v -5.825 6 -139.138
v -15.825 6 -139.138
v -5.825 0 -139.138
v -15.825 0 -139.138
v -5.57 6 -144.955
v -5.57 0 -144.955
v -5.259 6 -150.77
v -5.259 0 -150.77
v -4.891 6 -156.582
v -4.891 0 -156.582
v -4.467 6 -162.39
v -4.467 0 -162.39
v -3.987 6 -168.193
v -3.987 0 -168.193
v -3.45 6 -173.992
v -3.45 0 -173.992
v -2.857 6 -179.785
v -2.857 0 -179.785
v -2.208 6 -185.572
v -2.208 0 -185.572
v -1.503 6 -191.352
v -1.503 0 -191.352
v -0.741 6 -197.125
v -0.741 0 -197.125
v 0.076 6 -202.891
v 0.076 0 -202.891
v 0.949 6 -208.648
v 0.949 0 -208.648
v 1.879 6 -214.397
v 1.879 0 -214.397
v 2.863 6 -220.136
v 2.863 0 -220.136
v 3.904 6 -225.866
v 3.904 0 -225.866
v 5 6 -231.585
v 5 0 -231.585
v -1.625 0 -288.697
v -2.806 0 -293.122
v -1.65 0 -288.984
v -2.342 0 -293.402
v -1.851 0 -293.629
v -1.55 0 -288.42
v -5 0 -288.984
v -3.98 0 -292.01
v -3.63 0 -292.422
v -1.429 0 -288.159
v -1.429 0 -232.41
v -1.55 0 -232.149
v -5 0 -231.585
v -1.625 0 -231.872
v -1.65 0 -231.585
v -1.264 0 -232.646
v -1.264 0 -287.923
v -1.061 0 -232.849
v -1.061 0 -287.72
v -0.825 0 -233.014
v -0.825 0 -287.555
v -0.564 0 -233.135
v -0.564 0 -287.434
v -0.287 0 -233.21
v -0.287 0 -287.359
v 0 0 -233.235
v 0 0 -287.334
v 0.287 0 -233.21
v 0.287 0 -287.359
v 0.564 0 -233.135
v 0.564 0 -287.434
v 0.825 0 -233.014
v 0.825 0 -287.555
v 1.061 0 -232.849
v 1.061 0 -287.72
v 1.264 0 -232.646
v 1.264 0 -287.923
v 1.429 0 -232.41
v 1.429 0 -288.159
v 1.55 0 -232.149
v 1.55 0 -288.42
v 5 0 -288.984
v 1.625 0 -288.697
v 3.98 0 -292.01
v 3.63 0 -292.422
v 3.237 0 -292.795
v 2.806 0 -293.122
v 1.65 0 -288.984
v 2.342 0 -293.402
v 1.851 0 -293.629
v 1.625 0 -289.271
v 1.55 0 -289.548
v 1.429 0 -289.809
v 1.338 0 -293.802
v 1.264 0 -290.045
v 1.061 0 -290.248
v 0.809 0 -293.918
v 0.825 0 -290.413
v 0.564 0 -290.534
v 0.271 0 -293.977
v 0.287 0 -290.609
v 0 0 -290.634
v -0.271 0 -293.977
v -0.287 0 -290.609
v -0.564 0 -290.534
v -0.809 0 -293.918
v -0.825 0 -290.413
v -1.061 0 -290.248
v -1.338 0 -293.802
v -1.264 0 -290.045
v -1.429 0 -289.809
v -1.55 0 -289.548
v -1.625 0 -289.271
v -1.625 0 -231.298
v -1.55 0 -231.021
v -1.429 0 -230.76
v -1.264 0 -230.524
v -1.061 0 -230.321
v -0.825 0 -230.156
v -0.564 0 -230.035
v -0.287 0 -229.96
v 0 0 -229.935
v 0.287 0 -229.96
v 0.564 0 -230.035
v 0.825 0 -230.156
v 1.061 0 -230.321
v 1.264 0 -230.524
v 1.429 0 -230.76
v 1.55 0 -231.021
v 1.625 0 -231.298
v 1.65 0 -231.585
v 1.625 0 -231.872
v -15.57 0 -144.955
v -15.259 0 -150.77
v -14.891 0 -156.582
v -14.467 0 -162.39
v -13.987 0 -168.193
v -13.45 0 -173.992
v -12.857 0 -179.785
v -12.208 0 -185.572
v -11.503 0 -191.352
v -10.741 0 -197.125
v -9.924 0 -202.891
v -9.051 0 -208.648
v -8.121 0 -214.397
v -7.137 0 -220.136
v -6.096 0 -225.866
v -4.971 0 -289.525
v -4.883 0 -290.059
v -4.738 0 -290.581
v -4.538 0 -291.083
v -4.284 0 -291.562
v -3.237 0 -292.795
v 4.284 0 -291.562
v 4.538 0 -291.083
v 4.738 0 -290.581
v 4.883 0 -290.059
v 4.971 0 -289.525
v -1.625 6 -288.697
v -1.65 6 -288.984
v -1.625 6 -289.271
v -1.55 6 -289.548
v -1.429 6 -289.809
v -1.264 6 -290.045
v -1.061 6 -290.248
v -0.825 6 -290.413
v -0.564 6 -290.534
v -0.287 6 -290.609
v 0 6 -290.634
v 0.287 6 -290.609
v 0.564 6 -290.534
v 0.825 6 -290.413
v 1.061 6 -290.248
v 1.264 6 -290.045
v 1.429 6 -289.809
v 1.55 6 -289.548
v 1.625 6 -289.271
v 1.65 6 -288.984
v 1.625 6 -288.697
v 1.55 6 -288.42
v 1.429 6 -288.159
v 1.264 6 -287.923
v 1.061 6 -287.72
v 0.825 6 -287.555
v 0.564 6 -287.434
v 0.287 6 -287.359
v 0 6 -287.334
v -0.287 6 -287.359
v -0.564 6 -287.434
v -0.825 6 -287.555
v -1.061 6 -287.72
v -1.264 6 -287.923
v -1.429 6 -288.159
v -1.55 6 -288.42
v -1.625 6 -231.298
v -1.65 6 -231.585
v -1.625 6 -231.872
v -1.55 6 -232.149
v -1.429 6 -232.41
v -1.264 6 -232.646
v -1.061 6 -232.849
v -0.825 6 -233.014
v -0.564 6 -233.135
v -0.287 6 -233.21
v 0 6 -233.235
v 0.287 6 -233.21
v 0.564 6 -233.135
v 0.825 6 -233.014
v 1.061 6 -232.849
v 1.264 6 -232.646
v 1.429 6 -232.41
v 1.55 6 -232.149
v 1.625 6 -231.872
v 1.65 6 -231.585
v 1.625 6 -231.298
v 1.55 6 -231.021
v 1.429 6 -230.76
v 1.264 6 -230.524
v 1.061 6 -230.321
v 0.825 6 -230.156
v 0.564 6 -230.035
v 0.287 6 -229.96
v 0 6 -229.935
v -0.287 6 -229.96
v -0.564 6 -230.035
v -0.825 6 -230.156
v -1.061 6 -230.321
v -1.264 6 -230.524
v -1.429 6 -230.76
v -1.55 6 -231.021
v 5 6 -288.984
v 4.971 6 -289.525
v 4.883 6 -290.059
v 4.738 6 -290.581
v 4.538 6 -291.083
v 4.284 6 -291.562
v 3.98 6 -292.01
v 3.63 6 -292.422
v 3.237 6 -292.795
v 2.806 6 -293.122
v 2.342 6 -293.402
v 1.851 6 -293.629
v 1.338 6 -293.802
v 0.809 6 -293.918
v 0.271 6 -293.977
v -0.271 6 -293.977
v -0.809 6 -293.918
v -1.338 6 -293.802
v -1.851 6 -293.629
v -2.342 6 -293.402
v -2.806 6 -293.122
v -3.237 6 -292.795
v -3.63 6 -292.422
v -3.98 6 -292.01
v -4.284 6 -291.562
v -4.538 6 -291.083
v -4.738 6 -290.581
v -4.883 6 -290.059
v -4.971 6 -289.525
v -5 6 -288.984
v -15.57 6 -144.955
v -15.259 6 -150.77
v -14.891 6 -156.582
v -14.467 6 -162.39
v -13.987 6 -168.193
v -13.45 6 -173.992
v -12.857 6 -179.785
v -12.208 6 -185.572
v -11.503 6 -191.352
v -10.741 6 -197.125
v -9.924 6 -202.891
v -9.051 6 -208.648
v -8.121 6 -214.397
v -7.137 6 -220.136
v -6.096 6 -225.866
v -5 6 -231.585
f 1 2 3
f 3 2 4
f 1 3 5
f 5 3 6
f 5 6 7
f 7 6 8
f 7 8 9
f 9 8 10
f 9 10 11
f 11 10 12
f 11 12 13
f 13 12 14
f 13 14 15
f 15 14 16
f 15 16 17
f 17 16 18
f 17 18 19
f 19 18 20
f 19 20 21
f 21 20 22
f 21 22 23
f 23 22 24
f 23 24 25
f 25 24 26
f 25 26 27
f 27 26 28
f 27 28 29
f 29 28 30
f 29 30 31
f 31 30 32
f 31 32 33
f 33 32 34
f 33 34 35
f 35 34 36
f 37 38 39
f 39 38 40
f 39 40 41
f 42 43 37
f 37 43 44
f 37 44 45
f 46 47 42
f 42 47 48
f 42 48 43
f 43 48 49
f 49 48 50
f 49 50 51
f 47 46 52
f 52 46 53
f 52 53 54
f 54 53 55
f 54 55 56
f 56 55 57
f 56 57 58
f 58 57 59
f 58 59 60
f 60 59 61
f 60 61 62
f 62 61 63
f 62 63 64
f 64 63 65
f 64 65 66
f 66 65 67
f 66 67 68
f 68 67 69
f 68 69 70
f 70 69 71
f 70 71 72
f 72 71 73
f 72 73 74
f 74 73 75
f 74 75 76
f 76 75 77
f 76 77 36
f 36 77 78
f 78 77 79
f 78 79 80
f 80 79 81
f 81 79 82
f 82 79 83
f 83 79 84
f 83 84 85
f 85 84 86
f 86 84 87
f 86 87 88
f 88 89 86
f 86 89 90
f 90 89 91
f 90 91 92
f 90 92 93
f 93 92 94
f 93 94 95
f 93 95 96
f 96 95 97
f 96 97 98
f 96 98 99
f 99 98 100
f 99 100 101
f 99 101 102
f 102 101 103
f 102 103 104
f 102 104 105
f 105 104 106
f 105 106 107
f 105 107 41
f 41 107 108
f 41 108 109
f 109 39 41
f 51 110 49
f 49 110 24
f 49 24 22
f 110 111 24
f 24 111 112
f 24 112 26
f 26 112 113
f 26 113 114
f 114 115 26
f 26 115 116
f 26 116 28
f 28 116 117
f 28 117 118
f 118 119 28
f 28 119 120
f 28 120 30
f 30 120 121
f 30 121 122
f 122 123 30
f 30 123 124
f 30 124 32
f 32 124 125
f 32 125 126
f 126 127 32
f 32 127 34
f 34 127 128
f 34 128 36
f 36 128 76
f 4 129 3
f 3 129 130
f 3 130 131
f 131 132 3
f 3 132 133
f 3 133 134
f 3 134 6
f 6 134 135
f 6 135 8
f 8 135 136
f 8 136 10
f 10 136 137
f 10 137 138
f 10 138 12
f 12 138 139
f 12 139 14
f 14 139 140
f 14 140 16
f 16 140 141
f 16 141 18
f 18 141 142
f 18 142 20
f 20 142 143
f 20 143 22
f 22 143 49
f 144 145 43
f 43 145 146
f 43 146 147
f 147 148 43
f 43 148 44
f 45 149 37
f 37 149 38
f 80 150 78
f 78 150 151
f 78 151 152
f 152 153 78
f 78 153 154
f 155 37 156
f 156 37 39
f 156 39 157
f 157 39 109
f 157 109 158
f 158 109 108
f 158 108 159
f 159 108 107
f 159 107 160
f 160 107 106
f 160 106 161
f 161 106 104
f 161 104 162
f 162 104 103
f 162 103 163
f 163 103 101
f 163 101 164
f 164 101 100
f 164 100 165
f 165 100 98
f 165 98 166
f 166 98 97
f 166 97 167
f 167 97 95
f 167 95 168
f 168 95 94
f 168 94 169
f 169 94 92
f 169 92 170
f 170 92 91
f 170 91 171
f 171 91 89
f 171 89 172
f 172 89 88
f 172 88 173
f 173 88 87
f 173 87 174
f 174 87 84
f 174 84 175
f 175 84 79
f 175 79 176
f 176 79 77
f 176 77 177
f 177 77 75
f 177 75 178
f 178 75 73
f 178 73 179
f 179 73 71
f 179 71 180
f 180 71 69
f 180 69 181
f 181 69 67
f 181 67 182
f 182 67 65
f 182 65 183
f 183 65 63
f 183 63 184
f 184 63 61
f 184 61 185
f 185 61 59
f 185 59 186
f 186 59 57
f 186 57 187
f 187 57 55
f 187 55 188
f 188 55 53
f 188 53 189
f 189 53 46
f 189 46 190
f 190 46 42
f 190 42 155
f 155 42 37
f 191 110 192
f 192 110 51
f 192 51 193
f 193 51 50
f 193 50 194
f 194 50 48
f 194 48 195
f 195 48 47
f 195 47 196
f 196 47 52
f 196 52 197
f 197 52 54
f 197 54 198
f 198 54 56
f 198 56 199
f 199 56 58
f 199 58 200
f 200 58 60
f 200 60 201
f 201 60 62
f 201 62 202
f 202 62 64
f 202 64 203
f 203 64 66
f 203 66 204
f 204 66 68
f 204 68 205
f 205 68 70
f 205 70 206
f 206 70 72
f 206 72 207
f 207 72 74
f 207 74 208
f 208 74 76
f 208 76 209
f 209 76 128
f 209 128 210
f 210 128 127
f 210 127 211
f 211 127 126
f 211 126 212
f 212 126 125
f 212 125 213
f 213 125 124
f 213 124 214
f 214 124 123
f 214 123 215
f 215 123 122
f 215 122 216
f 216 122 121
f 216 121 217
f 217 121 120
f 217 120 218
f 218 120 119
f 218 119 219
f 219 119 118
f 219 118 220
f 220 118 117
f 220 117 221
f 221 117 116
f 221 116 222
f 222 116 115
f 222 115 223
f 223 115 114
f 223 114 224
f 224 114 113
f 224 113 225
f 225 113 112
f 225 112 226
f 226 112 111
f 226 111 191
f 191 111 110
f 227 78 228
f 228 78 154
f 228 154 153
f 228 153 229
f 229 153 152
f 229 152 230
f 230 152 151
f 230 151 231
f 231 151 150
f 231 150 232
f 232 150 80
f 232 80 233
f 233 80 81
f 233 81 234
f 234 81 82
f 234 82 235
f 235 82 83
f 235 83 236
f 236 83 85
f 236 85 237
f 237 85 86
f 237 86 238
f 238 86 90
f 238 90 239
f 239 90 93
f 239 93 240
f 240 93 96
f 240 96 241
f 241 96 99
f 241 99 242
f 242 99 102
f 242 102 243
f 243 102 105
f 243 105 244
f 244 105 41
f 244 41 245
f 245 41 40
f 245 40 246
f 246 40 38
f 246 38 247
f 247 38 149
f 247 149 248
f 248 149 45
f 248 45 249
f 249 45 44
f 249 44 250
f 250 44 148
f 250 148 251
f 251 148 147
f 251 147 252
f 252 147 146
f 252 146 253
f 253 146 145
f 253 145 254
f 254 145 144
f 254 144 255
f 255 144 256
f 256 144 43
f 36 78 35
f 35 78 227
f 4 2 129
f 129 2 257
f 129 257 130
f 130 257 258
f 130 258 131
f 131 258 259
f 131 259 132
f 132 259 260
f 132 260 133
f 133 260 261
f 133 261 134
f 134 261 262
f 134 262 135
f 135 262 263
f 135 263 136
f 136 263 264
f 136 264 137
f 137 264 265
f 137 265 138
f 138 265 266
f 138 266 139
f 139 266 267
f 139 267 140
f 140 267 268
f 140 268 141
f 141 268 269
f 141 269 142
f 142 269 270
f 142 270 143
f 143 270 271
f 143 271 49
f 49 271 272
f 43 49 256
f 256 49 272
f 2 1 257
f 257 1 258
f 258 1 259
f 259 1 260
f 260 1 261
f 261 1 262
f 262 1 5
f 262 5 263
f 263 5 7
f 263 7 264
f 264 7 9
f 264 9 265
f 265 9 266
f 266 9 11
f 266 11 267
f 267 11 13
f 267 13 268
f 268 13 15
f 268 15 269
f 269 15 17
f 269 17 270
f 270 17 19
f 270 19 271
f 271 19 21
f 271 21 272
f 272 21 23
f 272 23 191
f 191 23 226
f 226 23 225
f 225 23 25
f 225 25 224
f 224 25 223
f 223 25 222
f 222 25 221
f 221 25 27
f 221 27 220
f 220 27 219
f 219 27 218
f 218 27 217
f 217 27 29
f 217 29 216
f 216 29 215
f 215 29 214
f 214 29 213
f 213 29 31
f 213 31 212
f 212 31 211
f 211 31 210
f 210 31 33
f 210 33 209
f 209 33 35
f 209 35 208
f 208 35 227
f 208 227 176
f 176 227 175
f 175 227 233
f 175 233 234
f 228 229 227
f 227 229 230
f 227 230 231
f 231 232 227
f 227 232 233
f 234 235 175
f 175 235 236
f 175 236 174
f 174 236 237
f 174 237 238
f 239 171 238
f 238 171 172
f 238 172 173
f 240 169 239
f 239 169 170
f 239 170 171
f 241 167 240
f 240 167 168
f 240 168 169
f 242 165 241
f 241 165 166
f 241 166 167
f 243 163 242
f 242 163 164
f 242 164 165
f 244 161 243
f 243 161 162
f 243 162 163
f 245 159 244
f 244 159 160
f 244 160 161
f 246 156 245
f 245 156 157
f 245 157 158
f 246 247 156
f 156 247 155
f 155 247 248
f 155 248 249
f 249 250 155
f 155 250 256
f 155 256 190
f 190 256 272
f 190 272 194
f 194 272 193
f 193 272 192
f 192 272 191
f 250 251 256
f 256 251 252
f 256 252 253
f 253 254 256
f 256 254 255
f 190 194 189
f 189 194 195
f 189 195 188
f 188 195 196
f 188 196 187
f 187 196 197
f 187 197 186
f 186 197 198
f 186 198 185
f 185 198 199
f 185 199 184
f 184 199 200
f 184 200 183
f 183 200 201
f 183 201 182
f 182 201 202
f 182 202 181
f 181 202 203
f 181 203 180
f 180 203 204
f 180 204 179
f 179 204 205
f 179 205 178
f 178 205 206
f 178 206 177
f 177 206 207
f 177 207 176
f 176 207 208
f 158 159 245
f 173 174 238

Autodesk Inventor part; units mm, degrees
ref_plane "YZ Plane" through (0, 0, 0) normal (1, 0, 0) x (0, 1, 0)
ref_plane "XZ Plane" through (0, 0, 0) normal (0, 1, 0) x (-1, 0, 0)
ref_plane "XY Plane" through (0, 0, 0) normal (0, 0, 1) x (1, 0, 0)
sketch "Sketch1" plane through (0, 0, 0) normal (0, 1, 0) x (-1, 0, 0)
  line L0 (0, 0) -> (0, -288.984) construction
  line L1 (5, 0) -> (5, -288.984)
  line L2 (-5, -288.984) -> (-5, 0)
  arc A0 (5, 0) -> (-5, 0) centre (0, 0) ccw
  arc A1 (-5, -288.984) -> (5, -288.984) centre (0, -288.984) ccw
  circle A2 centre (0, 0) radius 1.65
  circle A3 centre (0, -288.984) radius 1.65
  circle A4 centre (0, -231.585) radius 1.65
  arc A5 (-5, -231.585) -> (-5, 0) centre (-593.7207, -115.7925) ccw
  arc A6 (5, -231.585) -> (5, 0) centre (-583.7207, -115.7925) ccw
  point P0 (0, -144.492)
  dimension "d0" = 3.3
  dimension "d1" = 3.3
  dimension "d2" = 10
  dimension "d3" = 288.984
  dimension "d14" = 3.3
  dimension "d15" = 231.585
  dimension "d18" = 600
  dimension "d19" = 600
extrude "Extrusion1" add sketch "Sketch1" along normal blind 6 contours L1 A1 L2 A5 | L1 A5 A6 | L1 A5 A0
sketch "Sketch2" plane through (0, 6, 0) normal (0, 1, 0) x (1, 0, 0)
  line L0 (-27.7109, 299.4385) -> (14.5069, 299.4385)
  line L1 (14.5069, 299.4385) -> (14.5069, 139.1377)
  line L2 (14.5069, 139.1377) -> (-27.7109, 139.1377)
  line L3 (-27.7109, 139.1377) -> (-27.7109, 299.4385)
  line L4 (-101.0366, 321.0236) -> (54.5028, 321.0236)
  line L5 (54.5028, 321.0236) -> (54.5028, -14.1796)
  line L6 (54.5028, -14.1796) -> (-101.0366, -14.1796)
  line L7 (-101.0366, -14.1796) -> (-101.0366, 321.0236)
  point P0 (0, 0)
extrude "Extrusion2" cut sketch "Sketch2" against normal blind 10
properties part number "Part_7_p2"
